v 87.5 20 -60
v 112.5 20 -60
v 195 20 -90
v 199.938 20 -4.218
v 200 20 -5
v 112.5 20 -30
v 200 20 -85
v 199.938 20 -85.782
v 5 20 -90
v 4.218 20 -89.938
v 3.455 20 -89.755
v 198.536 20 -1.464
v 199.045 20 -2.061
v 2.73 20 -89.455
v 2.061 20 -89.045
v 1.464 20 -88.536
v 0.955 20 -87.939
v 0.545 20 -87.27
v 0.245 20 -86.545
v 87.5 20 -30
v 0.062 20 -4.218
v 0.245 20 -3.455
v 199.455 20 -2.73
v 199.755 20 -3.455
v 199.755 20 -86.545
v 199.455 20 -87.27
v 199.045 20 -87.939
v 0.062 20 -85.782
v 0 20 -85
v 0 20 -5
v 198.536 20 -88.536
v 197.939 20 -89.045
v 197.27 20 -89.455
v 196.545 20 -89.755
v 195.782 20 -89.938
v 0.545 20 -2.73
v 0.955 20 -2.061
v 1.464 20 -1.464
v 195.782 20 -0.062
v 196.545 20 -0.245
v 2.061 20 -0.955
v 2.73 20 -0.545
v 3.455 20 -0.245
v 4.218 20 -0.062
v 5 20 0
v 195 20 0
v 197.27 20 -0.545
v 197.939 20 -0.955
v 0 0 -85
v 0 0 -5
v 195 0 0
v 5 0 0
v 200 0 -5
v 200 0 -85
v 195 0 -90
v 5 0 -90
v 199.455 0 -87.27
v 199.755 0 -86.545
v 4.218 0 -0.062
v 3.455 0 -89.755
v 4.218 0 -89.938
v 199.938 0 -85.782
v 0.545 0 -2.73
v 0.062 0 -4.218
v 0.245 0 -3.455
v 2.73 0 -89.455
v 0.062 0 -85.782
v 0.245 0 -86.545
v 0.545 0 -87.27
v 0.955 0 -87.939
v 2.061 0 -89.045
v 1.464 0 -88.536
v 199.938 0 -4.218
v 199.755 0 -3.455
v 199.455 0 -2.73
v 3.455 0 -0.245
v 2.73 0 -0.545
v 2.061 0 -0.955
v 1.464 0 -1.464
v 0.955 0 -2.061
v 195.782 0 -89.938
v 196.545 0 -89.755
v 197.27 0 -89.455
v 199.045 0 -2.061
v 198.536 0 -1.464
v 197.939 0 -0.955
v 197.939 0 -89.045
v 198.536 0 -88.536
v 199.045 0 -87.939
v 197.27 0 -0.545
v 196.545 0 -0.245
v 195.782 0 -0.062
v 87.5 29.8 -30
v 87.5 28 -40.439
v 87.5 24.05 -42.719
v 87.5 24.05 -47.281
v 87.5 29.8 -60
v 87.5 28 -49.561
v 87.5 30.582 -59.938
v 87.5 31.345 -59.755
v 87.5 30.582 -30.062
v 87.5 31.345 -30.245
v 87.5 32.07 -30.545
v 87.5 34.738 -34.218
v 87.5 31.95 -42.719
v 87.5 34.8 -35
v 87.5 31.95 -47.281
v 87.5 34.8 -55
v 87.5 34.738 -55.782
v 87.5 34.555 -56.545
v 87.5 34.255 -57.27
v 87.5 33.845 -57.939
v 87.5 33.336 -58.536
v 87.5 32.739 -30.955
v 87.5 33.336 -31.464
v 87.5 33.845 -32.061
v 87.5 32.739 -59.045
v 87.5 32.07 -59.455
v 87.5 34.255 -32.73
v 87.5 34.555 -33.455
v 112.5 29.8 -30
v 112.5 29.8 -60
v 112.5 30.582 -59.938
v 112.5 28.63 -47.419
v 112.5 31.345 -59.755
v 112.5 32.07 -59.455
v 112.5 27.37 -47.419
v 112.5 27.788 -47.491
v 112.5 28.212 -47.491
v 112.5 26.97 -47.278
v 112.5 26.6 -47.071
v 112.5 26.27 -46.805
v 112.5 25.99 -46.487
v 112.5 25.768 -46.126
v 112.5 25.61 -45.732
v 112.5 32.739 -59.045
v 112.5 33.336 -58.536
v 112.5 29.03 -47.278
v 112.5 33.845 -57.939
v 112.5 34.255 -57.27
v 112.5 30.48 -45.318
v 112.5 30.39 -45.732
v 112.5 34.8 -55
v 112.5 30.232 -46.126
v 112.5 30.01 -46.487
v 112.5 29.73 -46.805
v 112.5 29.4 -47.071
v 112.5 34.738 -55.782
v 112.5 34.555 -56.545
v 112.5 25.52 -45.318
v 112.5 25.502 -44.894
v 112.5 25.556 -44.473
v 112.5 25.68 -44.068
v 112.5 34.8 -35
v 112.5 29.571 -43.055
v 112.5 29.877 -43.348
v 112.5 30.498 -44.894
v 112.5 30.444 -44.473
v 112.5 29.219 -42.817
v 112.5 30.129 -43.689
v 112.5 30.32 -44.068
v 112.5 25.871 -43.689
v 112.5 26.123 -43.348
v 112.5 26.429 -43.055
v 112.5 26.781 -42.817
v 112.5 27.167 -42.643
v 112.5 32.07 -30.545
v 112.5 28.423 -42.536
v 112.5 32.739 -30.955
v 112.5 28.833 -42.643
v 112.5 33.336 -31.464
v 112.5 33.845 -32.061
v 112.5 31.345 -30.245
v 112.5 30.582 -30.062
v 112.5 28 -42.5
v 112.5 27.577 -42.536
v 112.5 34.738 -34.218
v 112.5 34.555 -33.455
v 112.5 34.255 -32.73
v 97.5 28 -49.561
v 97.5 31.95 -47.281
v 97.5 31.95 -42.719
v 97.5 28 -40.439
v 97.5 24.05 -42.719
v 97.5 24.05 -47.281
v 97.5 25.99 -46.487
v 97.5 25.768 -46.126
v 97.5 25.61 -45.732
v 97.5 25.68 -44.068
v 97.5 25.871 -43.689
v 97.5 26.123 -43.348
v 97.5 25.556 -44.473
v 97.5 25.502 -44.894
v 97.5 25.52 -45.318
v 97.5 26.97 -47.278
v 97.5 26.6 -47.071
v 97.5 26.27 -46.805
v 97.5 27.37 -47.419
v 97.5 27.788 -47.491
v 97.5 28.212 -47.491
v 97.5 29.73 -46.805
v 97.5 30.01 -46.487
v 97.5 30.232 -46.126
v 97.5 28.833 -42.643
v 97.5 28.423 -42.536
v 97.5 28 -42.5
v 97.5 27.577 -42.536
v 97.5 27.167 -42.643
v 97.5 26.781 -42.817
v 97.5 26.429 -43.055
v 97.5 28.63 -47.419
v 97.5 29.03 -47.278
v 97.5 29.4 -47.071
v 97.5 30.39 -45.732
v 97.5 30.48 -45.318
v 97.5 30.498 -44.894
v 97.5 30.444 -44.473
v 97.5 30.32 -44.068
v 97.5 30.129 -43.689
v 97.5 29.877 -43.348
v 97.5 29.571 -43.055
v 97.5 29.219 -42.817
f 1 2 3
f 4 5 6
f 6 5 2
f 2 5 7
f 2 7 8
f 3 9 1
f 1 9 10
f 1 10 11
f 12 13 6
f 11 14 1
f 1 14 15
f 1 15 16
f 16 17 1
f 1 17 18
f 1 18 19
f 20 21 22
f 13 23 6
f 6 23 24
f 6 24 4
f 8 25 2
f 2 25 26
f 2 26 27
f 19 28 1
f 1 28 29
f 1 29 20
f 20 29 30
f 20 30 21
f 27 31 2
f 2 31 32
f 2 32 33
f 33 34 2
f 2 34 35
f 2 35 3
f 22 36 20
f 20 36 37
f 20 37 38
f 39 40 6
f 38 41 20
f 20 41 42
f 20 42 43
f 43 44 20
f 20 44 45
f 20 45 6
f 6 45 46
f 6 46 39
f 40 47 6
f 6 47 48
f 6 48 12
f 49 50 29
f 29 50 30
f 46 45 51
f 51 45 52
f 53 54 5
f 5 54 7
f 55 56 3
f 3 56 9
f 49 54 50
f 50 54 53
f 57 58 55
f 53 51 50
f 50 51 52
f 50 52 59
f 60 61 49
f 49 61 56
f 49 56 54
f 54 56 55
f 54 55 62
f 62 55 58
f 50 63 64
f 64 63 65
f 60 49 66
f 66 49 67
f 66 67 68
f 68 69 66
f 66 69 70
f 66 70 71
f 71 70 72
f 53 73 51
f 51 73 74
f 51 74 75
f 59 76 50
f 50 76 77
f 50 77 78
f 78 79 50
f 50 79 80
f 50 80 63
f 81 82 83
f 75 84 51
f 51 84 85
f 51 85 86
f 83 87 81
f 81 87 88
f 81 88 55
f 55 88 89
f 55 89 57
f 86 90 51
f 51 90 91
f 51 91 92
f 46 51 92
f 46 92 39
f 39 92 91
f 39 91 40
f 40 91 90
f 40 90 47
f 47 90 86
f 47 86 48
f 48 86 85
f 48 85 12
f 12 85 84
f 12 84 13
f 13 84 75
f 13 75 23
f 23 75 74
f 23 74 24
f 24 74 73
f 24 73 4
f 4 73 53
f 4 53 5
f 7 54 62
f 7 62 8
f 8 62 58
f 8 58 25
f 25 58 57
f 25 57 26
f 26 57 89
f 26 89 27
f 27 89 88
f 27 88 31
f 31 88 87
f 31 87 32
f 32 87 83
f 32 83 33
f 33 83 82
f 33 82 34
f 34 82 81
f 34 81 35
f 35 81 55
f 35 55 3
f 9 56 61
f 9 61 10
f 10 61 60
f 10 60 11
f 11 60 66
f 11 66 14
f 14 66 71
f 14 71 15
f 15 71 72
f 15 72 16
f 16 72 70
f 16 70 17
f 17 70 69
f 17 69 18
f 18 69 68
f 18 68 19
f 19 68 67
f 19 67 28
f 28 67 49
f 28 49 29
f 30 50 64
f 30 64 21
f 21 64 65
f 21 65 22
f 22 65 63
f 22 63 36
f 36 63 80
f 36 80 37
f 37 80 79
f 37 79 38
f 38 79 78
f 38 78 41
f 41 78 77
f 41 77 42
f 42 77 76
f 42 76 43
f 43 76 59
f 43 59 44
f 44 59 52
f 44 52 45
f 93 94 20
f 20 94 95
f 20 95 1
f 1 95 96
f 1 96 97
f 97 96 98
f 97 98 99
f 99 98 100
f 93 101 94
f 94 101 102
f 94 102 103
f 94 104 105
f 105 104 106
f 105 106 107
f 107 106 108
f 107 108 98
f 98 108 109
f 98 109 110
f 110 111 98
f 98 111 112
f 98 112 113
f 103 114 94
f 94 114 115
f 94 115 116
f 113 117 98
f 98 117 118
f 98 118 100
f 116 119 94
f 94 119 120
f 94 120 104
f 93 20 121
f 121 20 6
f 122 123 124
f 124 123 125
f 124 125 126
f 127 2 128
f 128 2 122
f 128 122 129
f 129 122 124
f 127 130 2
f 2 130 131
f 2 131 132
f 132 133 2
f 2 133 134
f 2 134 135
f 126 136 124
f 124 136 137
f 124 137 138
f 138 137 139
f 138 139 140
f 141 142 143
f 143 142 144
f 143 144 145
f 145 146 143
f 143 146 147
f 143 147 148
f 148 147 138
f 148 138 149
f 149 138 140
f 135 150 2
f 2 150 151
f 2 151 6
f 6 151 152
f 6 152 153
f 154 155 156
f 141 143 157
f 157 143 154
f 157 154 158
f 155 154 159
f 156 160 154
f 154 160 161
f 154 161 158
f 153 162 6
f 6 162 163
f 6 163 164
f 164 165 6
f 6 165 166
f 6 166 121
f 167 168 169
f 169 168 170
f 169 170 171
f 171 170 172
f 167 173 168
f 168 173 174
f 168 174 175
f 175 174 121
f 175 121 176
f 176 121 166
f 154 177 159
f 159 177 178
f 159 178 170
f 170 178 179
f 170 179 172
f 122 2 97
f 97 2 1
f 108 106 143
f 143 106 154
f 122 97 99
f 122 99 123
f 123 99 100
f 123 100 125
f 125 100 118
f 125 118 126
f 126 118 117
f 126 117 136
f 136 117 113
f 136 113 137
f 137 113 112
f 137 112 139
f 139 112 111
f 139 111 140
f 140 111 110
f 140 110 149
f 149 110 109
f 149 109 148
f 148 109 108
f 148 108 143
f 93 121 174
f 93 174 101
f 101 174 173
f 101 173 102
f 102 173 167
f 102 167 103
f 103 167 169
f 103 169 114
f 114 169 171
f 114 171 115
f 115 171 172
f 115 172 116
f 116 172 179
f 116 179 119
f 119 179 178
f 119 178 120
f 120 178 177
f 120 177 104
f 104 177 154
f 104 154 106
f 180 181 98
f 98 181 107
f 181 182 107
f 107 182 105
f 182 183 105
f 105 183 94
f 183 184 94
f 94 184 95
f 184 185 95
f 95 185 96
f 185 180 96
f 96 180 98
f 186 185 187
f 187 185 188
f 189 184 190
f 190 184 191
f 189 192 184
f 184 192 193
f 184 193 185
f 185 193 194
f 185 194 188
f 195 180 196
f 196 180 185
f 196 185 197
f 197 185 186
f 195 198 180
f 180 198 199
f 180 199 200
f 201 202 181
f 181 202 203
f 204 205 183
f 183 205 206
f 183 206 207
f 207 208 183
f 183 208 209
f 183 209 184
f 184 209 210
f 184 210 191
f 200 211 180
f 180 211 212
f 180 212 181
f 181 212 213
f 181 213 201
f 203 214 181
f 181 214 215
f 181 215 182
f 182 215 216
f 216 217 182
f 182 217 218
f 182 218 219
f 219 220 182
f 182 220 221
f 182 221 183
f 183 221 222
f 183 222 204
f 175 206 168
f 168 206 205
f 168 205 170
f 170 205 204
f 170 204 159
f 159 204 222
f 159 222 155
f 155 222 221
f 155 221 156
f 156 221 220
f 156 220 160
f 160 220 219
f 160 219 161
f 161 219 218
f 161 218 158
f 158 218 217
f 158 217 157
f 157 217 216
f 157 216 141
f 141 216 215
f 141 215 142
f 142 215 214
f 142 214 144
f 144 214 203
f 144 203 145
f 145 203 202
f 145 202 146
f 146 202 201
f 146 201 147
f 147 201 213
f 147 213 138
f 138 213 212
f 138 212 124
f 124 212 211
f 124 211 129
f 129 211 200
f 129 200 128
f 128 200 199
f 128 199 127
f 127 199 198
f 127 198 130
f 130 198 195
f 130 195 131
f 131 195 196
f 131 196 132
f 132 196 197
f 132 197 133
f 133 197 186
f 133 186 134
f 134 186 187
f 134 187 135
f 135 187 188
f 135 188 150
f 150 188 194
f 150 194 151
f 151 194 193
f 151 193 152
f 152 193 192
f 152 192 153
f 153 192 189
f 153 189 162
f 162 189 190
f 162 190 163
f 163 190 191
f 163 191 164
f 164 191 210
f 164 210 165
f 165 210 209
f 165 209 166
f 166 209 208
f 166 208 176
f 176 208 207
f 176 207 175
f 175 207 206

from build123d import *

# Parameters (mm, degrees)
SKETCH1_W           = 200
SKETCH1_H           = 90
BOSS_EXTRUDE1_DEPTH = 20
FILLET1_R           = 5
SKETCH2_W           = 25
SKETCH2_H           = 30
BOSS_EXTRUDE2_DEPTH = 14.8
FILLET2_R           = 5
CUT_EXTRUDE1_DEPTH  = 10
CUT_EXTRUDE2_REACH  = 150.214
SKETCH4_R           = 2.5


with BuildPart() as part:
    # Sketch1 → Boss-Extrude1 (new body)
    with BuildSketch(Plane(origin=(0, 0, 0), x_dir=(1, 0, 0), z_dir=(0, 1, 0))):
        with Locations((100, 45)):
            Rectangle(SKETCH1_W, SKETCH1_H)
    extrude(amount=BOSS_EXTRUDE1_DEPTH)

    # Fillet1
    fillet1_edges = [part.edges().sort_by_distance(p)[0] for p in [
        (0, 10, -90),
        (200, 10, -90),
        (200, 10, 0),
        (0, 10, 0),
    ]]
    fillet(fillet1_edges, radius=FILLET1_R)

    # Sketch2 → Boss-Extrude2 (add)
    with BuildSketch(Plane(origin=(0, 20, 0), x_dir=(1, 0, 0), z_dir=(0, 1, 0))):
        with Locations((100, 45)):
            Rectangle(SKETCH2_W, SKETCH2_H)
    extrude(amount=BOSS_EXTRUDE2_DEPTH)

    # Fillet2
    fillet2_edges = [part.edges().sort_by_distance(p)[0] for p in [
        (100, 34.8, -30),
        (100, 34.8, -60),
    ]]
    fillet(fillet2_edges, radius=FILLET2_R)

    # Sketch3 → Cut-Extrude1 (cut)
    with BuildSketch(Plane.ZY.offset(-87.5)):
        Polygon((-49.561067127, 28), (-47.280533563, 24.05), (-42.719466437, 24.05), (-40.438932873, 28), (-42.719466437, 31.95), (-47.280533563, 31.95), align=None)
    extrude(amount=-CUT_EXTRUDE1_DEPTH, mode=Mode.SUBTRACT)

    # Sketch4 → Cut-Extrude2 (cut, up to next)
    with BuildSketch(Plane.ZY.offset(-87.5), mode=Mode.PRIVATE) as cut_extrude2_sk1:
        with Locations((-45, 28)):
            Circle(SKETCH4_R)
    cut_extrude2_tool1 = extrude(cut_extrude2_sk1.sketch, amount=-CUT_EXTRUDE2_REACH, mode=Mode.PRIVATE) & part.part
    add(cut_extrude2_tool1.solids().sort_by_distance((87.5, 28, -45))[0], mode=Mode.SUBTRACT)


solid = part.part
